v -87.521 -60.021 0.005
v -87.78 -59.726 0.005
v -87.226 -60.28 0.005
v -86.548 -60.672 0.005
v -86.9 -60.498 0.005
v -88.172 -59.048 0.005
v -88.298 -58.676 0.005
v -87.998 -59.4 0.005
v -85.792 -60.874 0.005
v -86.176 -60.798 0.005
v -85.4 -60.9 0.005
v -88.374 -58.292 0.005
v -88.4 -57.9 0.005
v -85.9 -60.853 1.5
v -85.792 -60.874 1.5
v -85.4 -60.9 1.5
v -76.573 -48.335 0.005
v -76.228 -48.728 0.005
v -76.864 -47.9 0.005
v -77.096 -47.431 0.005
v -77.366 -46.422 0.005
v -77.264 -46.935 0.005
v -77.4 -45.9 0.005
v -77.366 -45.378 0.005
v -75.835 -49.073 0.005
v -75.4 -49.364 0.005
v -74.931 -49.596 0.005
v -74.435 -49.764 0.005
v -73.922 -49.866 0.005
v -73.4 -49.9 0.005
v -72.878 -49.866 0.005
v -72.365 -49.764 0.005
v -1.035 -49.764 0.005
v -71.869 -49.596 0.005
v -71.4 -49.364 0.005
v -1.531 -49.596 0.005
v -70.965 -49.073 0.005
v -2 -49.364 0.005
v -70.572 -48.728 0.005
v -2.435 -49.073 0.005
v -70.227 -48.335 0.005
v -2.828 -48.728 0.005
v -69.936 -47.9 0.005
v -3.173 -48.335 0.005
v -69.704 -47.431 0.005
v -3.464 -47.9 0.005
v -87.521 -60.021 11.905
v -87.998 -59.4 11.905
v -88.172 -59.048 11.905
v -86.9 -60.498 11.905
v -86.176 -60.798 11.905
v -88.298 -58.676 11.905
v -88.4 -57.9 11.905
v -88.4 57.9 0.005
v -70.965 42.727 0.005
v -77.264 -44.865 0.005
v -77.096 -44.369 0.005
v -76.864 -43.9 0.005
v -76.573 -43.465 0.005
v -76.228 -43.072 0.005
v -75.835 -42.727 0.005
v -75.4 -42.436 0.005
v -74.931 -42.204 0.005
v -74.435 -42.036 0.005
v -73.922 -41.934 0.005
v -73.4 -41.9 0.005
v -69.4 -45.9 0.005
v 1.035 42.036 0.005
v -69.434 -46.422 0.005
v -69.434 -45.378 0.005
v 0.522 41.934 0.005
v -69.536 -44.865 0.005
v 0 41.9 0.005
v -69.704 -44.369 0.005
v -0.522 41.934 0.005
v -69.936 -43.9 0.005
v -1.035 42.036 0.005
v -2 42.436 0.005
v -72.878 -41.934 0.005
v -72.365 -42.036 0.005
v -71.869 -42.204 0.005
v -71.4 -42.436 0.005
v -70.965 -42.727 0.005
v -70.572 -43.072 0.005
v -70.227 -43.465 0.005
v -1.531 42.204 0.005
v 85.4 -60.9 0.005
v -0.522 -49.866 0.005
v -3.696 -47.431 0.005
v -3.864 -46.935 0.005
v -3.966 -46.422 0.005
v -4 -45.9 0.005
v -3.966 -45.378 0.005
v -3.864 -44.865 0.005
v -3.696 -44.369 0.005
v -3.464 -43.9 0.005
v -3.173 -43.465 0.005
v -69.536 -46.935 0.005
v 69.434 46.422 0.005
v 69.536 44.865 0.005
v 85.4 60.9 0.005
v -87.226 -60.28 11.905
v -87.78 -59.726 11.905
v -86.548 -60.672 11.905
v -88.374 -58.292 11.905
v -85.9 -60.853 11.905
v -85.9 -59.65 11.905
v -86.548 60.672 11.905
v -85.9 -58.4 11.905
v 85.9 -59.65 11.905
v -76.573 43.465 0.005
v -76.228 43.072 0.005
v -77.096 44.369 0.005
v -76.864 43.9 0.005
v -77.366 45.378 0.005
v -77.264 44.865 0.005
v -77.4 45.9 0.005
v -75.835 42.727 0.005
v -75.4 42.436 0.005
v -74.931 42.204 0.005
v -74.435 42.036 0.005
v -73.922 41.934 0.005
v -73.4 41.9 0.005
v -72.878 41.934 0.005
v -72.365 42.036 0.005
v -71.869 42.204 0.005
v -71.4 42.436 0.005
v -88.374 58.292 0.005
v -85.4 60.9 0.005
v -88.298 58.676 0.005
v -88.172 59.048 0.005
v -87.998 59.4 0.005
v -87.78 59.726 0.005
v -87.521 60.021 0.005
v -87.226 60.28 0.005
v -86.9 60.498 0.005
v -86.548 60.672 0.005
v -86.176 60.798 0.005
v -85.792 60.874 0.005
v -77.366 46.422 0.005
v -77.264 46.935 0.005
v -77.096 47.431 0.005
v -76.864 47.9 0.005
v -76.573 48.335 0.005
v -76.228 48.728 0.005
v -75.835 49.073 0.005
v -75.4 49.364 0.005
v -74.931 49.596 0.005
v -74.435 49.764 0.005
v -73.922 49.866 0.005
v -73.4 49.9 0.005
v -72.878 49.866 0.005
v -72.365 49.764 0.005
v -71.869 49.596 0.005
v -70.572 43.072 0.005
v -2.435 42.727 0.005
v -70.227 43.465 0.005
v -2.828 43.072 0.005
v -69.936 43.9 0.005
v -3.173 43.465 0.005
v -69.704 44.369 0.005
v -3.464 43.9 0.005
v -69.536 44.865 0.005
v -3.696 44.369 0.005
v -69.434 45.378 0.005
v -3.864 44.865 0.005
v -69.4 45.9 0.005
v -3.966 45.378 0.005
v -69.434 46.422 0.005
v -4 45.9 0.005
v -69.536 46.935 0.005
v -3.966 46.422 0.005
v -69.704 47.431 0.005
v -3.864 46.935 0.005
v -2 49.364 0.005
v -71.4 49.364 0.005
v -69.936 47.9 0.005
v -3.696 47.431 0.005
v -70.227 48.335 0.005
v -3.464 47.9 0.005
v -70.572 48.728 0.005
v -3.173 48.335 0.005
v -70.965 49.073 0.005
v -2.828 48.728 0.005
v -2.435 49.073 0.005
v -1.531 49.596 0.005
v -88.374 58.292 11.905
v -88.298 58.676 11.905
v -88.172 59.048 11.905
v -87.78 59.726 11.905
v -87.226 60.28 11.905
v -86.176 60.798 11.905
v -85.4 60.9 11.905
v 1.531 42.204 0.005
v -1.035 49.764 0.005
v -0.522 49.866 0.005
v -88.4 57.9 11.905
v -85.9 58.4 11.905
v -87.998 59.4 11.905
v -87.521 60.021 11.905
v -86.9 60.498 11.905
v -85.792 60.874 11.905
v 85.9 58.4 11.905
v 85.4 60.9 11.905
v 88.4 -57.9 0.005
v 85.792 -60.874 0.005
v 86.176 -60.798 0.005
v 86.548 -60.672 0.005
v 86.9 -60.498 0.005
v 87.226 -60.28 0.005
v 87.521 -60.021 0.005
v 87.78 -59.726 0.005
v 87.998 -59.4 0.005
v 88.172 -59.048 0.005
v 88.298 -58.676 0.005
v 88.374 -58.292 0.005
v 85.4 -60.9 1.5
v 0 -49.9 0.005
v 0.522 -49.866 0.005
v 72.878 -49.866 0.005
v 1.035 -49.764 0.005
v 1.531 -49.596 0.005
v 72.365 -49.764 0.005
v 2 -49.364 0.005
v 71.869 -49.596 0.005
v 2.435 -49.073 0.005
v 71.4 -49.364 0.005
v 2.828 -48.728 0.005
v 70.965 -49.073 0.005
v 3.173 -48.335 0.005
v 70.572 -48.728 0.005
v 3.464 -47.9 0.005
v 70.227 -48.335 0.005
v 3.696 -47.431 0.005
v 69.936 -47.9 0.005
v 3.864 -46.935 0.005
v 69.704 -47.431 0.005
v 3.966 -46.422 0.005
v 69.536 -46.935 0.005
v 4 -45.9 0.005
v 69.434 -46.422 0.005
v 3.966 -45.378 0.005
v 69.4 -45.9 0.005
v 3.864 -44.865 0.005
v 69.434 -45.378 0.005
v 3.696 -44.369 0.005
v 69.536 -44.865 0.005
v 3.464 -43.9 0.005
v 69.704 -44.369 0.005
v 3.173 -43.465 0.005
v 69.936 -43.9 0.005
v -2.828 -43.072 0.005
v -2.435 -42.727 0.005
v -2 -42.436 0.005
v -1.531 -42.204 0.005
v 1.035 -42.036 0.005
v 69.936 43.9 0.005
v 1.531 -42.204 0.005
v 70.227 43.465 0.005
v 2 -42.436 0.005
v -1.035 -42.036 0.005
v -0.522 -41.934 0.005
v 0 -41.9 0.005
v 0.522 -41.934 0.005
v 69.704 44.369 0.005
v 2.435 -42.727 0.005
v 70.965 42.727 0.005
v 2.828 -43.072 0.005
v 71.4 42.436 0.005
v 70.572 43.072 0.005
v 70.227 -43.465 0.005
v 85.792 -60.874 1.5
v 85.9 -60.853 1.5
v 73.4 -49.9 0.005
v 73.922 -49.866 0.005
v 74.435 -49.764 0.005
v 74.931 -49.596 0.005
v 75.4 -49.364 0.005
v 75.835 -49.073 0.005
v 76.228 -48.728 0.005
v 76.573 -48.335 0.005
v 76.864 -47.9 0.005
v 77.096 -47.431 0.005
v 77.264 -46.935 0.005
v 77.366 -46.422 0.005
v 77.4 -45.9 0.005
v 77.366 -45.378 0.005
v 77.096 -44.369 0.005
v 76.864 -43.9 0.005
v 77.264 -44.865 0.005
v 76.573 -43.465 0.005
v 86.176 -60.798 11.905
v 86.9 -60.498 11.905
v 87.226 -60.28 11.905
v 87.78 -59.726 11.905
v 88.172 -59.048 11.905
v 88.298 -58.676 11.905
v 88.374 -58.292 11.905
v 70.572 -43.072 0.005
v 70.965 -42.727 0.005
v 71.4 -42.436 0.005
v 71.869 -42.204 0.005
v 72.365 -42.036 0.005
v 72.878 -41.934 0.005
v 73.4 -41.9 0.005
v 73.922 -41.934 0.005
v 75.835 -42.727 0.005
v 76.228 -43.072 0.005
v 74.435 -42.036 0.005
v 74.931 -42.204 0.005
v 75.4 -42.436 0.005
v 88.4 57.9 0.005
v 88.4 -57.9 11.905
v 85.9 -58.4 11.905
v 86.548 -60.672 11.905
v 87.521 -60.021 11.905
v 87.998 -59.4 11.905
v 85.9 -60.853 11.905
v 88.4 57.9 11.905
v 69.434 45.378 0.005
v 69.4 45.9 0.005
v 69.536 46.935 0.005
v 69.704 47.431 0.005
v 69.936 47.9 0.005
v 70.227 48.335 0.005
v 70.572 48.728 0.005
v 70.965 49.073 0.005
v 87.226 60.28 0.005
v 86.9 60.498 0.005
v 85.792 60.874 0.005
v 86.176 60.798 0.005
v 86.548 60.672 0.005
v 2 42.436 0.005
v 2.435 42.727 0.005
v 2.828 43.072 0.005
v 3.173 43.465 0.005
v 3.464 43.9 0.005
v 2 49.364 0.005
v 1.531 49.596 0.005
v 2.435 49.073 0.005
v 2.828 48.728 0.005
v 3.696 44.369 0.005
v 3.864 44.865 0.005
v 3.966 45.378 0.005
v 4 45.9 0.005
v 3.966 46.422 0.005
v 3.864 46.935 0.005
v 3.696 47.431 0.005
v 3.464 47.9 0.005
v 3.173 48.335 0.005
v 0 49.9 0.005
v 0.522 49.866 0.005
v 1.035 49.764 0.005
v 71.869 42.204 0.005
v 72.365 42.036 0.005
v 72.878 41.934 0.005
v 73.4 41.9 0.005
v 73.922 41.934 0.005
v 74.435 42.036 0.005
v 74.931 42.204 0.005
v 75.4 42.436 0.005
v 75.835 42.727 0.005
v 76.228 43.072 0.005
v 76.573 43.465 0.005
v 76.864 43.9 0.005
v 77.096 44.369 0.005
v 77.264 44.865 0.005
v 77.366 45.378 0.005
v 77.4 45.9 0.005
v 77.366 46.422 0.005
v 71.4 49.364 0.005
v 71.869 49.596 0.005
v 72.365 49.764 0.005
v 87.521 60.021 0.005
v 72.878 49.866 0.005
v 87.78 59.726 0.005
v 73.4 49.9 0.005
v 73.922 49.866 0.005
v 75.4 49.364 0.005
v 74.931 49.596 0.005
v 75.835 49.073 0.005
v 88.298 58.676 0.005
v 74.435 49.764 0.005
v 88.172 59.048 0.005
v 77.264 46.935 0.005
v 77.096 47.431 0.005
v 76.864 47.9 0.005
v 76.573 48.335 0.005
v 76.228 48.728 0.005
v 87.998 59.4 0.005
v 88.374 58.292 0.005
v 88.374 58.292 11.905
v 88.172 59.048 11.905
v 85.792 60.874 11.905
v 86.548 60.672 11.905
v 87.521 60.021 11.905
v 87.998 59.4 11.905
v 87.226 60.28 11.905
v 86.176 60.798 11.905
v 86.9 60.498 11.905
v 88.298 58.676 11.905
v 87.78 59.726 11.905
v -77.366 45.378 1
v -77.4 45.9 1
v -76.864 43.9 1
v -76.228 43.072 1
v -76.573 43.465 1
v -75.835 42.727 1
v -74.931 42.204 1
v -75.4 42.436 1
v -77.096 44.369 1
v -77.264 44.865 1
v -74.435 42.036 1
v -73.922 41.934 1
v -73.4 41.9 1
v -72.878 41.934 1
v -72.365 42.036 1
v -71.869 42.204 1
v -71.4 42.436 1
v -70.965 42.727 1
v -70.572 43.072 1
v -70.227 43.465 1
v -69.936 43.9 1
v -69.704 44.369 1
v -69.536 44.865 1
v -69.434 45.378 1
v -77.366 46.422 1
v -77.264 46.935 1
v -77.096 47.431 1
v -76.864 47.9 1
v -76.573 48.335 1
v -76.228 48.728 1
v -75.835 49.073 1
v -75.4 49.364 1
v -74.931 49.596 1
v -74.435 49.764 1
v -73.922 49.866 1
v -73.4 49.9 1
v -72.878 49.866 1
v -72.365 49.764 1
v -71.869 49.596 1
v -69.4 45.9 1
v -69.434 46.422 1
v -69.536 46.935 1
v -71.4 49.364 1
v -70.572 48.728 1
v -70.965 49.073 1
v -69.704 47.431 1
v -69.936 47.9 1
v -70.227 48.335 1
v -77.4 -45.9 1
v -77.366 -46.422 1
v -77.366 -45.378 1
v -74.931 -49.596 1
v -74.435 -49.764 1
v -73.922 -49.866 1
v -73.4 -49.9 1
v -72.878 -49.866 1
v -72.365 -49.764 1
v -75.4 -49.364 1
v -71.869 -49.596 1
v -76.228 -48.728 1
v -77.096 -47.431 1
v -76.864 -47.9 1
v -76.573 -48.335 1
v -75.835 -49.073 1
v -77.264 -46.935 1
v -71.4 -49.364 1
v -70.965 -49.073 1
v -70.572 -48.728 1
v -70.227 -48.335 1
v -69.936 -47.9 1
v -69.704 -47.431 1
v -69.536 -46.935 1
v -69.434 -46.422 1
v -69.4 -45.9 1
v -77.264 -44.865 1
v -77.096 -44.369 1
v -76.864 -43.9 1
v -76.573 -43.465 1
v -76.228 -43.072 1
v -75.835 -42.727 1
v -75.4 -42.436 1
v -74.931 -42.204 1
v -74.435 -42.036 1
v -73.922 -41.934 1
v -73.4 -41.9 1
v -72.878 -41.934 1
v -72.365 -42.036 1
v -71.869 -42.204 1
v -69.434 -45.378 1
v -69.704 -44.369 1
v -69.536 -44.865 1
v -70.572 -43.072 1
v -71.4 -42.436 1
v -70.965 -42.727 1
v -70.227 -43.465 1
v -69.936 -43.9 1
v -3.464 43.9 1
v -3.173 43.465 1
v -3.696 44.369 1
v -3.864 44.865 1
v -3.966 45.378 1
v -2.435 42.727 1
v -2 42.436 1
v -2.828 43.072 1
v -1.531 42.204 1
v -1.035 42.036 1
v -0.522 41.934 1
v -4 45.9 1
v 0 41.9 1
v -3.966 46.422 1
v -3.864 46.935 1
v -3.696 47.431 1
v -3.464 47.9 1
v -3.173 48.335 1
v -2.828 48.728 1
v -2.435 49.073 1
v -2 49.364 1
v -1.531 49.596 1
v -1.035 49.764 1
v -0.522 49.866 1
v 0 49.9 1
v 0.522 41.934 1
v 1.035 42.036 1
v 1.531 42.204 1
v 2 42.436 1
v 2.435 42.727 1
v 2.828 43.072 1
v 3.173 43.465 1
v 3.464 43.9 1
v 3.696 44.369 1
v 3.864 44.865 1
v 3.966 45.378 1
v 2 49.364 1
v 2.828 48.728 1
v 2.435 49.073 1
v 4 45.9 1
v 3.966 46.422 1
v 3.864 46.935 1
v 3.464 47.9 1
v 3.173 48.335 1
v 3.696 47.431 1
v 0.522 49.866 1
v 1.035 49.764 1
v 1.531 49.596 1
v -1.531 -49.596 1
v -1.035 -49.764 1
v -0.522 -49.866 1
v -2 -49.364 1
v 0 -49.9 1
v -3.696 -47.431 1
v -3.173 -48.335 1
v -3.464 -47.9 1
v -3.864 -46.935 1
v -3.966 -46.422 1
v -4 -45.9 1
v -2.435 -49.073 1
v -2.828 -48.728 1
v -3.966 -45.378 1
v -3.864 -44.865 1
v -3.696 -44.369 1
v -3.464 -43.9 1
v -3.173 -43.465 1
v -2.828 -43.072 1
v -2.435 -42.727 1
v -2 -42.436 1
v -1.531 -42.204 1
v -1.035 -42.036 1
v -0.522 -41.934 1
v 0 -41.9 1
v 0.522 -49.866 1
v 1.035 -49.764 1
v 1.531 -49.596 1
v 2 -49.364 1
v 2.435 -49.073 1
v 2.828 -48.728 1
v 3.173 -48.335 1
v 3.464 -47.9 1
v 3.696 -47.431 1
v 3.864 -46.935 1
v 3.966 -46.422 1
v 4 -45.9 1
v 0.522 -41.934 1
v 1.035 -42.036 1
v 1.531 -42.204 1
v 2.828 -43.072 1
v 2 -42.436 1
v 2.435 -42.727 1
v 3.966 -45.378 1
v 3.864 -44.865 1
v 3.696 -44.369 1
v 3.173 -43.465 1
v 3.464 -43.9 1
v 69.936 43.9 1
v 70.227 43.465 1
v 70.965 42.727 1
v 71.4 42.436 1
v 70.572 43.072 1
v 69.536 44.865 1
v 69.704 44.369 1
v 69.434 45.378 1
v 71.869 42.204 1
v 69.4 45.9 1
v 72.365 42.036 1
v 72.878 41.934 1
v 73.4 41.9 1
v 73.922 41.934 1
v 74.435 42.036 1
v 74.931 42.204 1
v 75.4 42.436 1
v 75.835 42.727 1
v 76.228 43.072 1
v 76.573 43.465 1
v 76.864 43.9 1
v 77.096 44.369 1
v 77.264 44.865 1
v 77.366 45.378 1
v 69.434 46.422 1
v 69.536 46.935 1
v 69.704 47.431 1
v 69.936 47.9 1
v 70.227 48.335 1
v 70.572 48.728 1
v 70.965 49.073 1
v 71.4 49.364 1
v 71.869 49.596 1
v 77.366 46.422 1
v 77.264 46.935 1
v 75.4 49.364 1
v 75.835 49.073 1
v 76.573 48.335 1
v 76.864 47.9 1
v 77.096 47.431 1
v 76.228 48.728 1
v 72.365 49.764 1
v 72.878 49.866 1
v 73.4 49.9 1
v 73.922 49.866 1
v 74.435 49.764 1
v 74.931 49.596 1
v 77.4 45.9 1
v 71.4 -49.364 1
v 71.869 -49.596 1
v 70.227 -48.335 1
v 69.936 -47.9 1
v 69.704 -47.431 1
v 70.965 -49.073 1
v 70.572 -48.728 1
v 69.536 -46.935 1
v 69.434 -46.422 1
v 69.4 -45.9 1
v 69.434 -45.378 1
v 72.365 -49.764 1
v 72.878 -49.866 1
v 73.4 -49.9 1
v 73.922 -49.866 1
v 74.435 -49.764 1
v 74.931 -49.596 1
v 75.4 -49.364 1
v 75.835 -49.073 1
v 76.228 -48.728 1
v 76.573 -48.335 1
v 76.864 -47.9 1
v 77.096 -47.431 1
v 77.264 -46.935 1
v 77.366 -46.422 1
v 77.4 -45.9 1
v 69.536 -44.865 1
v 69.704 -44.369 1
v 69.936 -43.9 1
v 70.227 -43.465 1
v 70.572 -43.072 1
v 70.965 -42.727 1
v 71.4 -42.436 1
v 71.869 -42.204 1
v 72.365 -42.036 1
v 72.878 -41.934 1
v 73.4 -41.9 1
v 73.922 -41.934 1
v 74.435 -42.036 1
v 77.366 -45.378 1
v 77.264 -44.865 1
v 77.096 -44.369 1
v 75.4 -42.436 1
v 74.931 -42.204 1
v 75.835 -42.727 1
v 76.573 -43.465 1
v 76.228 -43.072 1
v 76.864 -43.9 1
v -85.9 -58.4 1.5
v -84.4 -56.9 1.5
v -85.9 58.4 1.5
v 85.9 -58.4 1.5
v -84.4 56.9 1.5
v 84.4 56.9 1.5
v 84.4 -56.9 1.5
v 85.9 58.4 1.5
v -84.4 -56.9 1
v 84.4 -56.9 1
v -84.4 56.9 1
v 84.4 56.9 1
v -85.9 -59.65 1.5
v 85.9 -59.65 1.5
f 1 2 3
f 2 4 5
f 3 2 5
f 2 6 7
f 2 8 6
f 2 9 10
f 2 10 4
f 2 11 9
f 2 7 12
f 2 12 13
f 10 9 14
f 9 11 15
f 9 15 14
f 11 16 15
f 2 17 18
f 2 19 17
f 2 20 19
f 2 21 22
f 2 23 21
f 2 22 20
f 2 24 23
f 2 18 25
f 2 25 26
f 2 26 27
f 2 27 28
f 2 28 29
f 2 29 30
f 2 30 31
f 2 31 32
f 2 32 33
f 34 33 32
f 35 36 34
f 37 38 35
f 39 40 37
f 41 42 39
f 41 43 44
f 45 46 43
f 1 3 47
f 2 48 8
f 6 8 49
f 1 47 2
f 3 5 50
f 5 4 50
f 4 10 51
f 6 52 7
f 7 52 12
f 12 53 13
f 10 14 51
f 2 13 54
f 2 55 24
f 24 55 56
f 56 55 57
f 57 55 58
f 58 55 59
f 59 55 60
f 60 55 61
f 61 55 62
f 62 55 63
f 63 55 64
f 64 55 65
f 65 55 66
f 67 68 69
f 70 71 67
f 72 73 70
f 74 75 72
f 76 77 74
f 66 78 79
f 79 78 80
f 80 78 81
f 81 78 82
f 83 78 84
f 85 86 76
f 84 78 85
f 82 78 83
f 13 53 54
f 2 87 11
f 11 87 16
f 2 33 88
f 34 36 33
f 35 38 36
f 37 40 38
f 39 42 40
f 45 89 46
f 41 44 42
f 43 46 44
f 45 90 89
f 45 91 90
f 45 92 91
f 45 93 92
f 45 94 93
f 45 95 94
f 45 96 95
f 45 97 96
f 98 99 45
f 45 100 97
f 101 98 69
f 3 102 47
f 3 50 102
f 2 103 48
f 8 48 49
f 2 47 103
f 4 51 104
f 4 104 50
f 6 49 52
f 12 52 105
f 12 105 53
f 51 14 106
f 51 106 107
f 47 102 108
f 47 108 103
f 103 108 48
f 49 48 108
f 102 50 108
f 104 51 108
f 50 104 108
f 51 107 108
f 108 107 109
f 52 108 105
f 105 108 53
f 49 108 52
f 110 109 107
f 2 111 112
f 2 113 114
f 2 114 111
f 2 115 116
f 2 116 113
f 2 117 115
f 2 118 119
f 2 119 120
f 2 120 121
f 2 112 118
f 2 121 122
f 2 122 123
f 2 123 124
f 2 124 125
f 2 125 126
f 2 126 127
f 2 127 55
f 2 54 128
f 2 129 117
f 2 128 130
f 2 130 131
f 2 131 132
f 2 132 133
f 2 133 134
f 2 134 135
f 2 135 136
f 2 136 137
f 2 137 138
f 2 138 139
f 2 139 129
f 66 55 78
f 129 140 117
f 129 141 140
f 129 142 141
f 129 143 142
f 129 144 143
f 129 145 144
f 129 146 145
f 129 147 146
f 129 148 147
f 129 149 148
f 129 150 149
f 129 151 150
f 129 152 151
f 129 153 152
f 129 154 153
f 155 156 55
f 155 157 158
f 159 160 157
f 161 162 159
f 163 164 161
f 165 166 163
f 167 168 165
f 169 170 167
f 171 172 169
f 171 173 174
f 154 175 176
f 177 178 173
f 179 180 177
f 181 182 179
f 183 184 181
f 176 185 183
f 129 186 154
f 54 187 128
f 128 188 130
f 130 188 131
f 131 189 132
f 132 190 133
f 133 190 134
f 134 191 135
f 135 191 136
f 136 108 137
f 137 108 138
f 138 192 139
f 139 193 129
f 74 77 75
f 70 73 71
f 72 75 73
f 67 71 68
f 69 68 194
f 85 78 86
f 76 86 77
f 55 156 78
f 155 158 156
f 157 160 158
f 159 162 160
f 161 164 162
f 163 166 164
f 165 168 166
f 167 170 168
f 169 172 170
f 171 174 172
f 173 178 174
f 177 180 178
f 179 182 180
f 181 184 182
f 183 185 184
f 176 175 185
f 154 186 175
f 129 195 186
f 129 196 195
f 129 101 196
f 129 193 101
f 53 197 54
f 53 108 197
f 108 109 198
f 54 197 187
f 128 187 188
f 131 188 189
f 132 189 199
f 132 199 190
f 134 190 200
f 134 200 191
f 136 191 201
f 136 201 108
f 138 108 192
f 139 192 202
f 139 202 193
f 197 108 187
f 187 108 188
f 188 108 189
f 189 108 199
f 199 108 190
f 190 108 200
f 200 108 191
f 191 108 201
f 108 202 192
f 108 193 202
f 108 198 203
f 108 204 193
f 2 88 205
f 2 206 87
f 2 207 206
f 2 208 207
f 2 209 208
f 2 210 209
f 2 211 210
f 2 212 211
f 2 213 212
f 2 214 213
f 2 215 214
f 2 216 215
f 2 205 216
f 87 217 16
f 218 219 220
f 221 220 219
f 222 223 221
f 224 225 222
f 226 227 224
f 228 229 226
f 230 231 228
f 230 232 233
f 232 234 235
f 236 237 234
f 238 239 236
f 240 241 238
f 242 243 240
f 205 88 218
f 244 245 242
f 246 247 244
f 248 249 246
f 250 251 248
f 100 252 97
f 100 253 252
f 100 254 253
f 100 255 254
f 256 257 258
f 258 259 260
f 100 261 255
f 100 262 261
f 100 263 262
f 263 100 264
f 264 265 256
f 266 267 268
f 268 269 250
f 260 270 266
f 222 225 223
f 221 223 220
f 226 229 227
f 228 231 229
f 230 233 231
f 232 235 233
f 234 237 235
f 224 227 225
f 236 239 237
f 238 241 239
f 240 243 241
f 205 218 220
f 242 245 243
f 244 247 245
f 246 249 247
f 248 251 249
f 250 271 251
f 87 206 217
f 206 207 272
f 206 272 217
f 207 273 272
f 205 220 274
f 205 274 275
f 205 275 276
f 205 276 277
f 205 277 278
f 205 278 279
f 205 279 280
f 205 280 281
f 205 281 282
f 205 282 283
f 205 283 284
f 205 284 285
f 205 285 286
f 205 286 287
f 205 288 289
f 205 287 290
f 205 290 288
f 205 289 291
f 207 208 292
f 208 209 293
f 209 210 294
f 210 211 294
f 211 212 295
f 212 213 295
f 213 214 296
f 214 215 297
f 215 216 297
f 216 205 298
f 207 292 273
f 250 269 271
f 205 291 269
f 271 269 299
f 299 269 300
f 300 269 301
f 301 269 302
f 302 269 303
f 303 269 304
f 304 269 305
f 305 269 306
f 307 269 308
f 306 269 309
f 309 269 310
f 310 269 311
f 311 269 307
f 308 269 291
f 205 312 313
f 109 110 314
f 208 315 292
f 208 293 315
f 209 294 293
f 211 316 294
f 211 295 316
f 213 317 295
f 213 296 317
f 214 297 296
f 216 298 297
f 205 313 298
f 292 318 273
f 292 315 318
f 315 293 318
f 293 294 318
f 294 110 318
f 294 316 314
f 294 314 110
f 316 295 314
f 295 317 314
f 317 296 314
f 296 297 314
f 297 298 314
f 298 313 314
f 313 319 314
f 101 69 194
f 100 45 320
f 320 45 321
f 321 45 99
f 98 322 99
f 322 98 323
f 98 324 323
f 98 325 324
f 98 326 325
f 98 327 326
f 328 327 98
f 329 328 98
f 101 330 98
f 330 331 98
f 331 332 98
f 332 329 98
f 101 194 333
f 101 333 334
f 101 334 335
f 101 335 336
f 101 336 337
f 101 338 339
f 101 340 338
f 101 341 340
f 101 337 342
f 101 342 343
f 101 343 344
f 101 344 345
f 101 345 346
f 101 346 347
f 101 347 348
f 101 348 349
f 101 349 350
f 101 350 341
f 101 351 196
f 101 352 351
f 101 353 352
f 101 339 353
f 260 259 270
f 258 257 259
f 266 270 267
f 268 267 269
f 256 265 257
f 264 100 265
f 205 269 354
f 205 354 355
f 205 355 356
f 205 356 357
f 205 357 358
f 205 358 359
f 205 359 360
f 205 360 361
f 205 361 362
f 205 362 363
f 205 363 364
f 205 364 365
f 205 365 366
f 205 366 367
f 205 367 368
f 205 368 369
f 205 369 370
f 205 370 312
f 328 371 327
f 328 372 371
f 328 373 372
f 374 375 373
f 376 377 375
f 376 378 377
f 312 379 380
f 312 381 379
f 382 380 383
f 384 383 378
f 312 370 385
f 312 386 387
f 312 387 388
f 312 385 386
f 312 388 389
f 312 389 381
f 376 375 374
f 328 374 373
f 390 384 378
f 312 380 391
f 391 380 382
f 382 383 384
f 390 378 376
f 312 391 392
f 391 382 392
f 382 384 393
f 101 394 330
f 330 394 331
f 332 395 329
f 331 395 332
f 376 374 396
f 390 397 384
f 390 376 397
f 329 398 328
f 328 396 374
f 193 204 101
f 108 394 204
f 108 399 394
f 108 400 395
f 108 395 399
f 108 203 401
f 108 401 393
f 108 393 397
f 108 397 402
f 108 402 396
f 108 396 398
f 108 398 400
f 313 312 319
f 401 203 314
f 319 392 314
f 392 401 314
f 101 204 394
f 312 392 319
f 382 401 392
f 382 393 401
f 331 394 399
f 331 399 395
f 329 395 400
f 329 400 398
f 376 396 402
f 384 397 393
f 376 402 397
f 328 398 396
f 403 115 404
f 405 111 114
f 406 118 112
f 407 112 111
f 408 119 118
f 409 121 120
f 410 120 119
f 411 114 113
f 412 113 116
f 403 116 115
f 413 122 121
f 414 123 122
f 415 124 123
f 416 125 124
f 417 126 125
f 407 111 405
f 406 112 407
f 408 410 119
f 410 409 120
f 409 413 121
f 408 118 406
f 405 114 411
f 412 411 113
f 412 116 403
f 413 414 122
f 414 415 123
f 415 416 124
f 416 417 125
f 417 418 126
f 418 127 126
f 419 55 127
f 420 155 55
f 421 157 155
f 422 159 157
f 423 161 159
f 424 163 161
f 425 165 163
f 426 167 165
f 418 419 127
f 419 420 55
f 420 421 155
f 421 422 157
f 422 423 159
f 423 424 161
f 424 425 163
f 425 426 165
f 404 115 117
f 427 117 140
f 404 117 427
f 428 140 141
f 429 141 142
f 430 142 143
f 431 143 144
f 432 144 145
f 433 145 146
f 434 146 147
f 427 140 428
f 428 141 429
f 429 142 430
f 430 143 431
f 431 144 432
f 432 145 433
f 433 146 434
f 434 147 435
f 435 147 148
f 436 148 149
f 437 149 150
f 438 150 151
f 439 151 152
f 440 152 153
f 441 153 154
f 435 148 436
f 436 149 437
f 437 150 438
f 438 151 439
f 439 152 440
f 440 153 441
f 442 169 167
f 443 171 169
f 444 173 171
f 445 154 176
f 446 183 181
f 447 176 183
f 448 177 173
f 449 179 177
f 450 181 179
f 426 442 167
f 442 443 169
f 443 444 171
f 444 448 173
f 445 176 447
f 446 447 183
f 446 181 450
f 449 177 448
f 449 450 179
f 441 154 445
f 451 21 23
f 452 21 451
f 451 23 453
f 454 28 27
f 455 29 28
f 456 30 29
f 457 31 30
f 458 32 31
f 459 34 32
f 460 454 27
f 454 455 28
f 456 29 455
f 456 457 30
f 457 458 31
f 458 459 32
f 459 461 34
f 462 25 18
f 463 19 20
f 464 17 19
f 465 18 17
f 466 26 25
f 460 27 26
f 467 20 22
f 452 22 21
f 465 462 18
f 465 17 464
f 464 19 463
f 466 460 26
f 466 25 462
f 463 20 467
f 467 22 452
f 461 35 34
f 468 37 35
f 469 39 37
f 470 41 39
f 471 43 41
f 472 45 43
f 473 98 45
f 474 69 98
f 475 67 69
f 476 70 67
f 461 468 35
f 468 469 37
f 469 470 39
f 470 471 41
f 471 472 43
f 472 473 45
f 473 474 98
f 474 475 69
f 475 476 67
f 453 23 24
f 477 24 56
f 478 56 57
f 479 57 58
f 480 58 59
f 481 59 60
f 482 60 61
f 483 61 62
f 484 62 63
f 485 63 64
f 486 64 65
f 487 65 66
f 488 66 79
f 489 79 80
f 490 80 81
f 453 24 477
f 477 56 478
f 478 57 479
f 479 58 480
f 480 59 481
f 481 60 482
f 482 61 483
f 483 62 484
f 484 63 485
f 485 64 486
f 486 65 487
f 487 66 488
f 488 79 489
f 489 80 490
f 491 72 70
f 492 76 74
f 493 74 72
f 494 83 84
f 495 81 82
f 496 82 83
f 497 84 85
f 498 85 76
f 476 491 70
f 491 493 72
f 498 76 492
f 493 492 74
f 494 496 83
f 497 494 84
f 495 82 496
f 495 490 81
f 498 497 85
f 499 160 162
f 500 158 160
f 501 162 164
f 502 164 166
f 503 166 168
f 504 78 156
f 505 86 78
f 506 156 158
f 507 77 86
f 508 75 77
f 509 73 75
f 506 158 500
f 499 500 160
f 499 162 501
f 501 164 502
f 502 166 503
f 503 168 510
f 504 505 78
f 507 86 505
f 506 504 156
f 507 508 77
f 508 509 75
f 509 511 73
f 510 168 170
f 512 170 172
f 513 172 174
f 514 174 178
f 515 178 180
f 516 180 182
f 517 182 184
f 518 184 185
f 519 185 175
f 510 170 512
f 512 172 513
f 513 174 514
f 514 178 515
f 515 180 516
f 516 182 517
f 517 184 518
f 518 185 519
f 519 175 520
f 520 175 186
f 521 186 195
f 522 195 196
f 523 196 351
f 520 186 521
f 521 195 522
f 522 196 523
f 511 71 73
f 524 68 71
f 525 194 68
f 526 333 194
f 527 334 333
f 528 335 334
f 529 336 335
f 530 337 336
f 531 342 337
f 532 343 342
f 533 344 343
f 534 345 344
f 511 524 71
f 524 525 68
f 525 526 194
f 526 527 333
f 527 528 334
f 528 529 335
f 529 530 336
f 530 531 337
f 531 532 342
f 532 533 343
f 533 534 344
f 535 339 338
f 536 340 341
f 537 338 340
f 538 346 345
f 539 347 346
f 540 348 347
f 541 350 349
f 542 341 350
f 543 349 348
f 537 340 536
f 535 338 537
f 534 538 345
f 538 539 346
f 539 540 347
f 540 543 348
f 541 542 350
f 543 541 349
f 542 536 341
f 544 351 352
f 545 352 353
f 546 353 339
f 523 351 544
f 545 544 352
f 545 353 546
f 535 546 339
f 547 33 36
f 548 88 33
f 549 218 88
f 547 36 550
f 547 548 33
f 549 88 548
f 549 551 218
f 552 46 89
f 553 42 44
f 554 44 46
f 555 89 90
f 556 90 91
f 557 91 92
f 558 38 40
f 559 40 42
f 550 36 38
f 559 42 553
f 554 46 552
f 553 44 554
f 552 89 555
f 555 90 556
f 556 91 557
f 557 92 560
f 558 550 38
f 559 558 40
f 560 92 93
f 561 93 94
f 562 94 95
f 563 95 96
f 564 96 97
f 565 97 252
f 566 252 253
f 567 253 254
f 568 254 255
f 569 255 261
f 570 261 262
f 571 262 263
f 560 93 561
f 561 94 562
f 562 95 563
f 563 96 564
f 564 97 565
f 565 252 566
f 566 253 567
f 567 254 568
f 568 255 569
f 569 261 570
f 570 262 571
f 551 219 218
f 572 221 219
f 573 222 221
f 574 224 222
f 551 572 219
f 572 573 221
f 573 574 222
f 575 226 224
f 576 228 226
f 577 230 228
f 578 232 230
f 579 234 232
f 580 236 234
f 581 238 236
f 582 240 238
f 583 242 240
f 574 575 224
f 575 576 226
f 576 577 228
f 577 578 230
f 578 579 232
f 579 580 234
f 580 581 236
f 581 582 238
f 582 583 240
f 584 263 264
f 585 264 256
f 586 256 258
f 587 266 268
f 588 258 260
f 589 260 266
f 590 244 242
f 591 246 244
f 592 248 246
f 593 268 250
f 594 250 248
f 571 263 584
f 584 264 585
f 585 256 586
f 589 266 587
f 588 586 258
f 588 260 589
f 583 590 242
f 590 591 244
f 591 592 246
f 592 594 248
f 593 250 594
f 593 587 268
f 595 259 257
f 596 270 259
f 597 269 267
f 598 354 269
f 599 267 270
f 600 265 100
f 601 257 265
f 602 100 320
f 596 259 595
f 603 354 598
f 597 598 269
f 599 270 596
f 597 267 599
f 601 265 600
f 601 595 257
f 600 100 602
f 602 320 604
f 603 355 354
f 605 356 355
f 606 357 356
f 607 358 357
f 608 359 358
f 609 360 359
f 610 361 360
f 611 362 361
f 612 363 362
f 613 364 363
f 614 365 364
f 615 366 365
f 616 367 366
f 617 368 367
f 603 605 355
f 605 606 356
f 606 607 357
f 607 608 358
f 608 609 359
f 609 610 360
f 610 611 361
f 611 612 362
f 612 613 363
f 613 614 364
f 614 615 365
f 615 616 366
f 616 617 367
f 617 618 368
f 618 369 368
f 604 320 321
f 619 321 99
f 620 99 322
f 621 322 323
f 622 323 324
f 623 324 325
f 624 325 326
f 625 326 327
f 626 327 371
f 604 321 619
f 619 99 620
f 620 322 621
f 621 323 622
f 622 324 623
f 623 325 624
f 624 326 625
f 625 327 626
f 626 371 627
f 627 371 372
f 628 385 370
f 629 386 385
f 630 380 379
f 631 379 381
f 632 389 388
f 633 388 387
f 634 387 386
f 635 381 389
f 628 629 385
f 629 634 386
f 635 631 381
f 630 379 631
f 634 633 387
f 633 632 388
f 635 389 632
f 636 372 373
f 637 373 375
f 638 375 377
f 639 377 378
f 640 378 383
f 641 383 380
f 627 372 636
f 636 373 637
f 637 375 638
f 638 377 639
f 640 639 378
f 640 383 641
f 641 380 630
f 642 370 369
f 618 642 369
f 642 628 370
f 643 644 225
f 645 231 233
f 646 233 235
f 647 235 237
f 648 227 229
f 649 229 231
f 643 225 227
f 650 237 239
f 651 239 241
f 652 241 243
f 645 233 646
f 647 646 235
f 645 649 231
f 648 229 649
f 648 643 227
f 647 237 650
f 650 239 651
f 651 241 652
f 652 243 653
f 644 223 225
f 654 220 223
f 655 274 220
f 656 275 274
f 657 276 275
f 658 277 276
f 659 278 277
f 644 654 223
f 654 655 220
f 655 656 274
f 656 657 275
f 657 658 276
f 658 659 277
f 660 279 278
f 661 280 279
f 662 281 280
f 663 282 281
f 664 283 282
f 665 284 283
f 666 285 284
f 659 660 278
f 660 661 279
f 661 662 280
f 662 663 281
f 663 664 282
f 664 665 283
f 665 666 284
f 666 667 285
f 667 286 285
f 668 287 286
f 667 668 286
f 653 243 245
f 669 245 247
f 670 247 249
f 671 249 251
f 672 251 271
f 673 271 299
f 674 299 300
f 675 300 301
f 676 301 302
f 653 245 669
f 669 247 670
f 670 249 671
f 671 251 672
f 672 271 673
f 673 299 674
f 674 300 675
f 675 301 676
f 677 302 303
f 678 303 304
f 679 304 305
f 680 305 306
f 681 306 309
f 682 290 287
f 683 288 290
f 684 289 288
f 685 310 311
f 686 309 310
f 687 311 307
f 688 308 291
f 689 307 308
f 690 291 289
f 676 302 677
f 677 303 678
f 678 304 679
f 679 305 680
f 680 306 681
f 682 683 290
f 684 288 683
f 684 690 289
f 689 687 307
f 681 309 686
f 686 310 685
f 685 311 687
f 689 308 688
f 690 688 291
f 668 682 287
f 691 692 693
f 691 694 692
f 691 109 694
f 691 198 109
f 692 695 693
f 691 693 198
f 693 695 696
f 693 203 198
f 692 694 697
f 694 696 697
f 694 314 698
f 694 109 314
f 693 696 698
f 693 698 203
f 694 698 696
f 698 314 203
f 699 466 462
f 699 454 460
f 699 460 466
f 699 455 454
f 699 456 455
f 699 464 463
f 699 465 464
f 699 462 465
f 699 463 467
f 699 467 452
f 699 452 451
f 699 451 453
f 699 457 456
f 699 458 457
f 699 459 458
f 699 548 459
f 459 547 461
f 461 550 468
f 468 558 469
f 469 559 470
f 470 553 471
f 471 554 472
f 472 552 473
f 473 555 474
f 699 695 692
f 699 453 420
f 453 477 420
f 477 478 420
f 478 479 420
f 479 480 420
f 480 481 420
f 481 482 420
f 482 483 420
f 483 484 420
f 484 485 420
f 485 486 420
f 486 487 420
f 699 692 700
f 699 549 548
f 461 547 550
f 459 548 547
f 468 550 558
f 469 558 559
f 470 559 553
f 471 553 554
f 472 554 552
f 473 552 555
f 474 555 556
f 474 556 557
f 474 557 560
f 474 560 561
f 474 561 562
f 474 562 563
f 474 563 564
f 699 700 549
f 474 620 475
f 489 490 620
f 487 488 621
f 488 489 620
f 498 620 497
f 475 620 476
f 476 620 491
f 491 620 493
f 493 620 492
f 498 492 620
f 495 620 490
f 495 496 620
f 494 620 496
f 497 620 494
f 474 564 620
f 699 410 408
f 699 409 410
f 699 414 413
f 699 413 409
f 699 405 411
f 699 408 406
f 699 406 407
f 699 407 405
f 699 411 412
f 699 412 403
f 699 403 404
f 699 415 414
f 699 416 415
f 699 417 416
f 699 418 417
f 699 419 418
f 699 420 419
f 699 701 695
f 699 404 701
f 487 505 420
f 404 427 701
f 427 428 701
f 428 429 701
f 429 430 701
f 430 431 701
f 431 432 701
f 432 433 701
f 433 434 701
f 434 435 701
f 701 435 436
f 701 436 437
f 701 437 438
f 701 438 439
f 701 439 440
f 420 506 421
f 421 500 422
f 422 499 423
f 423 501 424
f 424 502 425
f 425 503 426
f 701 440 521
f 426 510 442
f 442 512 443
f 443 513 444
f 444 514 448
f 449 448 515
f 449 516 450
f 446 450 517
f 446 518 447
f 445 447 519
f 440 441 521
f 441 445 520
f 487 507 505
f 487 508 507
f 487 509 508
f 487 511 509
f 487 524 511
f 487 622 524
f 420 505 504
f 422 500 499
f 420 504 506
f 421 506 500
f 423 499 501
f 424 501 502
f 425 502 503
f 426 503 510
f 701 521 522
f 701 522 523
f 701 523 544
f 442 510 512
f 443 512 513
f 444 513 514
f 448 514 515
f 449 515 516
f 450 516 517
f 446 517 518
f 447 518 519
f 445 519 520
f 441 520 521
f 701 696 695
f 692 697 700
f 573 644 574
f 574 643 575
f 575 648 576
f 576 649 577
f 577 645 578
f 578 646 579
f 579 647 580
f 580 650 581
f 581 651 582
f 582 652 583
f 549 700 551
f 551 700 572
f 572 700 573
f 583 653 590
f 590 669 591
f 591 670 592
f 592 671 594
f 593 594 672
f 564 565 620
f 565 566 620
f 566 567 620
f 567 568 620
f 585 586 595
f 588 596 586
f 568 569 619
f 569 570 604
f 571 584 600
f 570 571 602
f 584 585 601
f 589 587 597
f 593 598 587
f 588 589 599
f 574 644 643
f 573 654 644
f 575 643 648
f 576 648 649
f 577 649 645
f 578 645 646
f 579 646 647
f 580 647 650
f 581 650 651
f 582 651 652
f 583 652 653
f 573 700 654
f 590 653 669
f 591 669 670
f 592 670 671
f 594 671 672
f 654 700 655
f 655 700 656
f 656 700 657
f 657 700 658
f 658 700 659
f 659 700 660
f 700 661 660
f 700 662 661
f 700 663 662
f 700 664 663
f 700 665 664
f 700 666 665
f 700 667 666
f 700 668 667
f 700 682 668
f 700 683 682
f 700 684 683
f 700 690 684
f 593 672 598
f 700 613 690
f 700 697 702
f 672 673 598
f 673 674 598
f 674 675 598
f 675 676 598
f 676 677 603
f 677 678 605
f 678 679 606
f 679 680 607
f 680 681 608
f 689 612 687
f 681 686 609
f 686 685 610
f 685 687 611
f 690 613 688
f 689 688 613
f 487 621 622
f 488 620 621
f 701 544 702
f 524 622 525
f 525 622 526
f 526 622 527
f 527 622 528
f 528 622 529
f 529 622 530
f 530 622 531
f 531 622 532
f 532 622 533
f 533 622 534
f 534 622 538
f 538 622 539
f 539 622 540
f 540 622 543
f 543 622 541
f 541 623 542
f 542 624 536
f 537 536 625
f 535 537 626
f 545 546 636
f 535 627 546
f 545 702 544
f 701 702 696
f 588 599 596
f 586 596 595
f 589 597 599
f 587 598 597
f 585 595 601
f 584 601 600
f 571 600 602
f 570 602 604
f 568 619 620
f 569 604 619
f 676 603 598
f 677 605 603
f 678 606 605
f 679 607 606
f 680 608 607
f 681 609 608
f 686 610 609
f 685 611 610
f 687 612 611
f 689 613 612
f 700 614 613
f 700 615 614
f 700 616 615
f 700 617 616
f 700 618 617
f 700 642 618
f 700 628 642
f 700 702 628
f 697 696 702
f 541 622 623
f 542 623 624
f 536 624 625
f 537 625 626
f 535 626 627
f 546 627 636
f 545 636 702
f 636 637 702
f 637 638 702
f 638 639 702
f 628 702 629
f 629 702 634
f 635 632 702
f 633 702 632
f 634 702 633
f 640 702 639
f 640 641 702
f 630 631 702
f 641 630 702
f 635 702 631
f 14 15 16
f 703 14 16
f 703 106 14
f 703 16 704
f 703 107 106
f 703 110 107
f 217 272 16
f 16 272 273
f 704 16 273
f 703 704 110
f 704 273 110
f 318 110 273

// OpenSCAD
// =============================================================================
// Breadcrumbs Mount V1 — Magnetic Tray for TRMNL OG on MacBook Pro 14"
// Parametric OpenSCAD design
// 
// Thesis project: reducing activation energy for conversations in public spaces
// by mounting a TRMNL e-ink display on the back of a laptop lid.
//
// ORIENTATION: The TRMNL sits in a tray with the e-ink screen facing OUTWARD
// (toward other people). The solid back plate sits against the MacBook lid,
// held on by magnets. The front is open so the screen is fully visible.
//
// Instructions:
//   1. Open in OpenSCAD, adjust parameters in Customizer (right panel)
//   2. Preview (F5), Render (F6), Export STL (F7)
//   3. Print: 0.16mm layers, 15-20% infill, 3 walls, matte black PLA/PETG
// =============================================================================

// --- PARAMETERS (adjust these) -----------------------------------------------

// TRMNL OG device dimensions
// Sources: Gadgeteer review (171×116×10mm), Waveshare 7.5" EPD spec, official STLs
trmnl_width  = 171.0;    // mm - enclosure width
trmnl_height = 116.0;    // mm - enclosure height  
trmnl_depth  = 10.0;     // mm - enclosure thickness (Gadgeteer: 0.4" / 10mm)

// Frame construction
wall       = 2.5;        // mm - side wall thickness
lip        = 1.5;        // mm - front lip that holds TRMNL in (overlaps screen bezel)
back_thick = 1.5;        // mm - back plate thickness (against laptop lid)
tolerance  = 0.4;        // mm - clearance per side for easy fit
corner_r   = 3.0;        // mm - outer corner radius

// Magnets (neodymium disc, press-fit into back plate face)
mag_dia    = 8.0;        // mm - magnet diameter
mag_depth  = 3.2;        // mm - recess depth (slightly > magnet for flush)
mag_margin = 15.0;       // mm - magnet center distance from outer edge
mag_cols   = 3;          // magnets per row (top & bottom rows = 6 total)

// Slide-in opening (one short edge open for inserting TRMNL)
slide_in = true;

// --- DERIVED DIMENSIONS (don't edit) -----------------------------------------

// Inner pocket (TRMNL + clearance)
pocket_w = trmnl_width + 2 * tolerance;
pocket_h = trmnl_height + 2 * tolerance;
pocket_d = trmnl_depth + tolerance;  // depth clearance too

// Outer frame
frame_w = pocket_w + 2 * wall;
frame_h = pocket_h + 2 * wall;
frame_d = back_thick + pocket_d;     // back plate + device pocket

// Front lip inset (how far the lip covers the screen bezel edge)
lip_inset = lip;

// --- MODULES -----------------------------------------------------------------

module rounded_box(w, h, d, r) {
    // Rounded rectangle, centered XY, bottom at Z=0
    translate([0, 0, d/2])
        minkowski() {
            cube([w - 2*r, h - 2*r, d - 0.01], center=true);
            cylinder(r=r, h=0.01, $fn=48);
        }
}

module magnet_hole() {
    cylinder(d=mag_dia, h=mag_depth + 0.1, $fn=48);
}

// --- MAIN MODEL --------------------------------------------------------------

module breadcrumbs_mount_v1() {
    difference() {
        // === Outer body ===
        rounded_box(frame_w, frame_h, frame_d, corner_r);
        
        // === Device pocket ===
        // Cut from top (screen side), leaving back plate solid
        // The TRMNL drops in from the front, screen facing out
        translate([0, 0, back_thick + pocket_d/2 + 0.5])
            cube([pocket_w, pocket_h, pocket_d + 1], center=true);
        
        // === Front opening (screen visible) ===
        // Cut away the top face, but leave a lip around the edge
        // The lip holds the TRMNL in place (grips the bezel edges)
        translate([0, 0, back_thick + pocket_d/2 + 0.5])
            cube([pocket_w - 2*lip_inset, pocket_h - 2*lip_inset, pocket_d + 2], center=true);
        
        // === Magnet recesses (in back face, the laptop-lid side) ===
        for (col = [0 : mag_cols - 1]) {
            x = -frame_w/2 + mag_margin + col * (frame_w - 2*mag_margin) / max(mag_cols - 1, 1);
            
            // Top row
            translate([x, frame_h/2 - mag_margin, -0.05])
                magnet_hole();
            
            // Bottom row
            translate([x, -(frame_h/2 - mag_margin), -0.05])
                magnet_hole();
        }
        
        // === Slide-in slot (remove bottom short wall for insertion) ===
        if (slide_in) {
            translate([0, -(frame_h/2 + 0.5), back_thick + pocket_d/2 + 0.5])
                cube([pocket_w, wall + 1, pocket_d + 1], center=true);
        }
    }
}

// --- INFO --------------------------------------------------------------------

echo(str("=== Breadcrumbs Mount V1 ==="));
echo(str("Frame outer: ", frame_w, " × ", frame_h, " × ", frame_d, " mm"));
echo(str("Pocket inner: ", pocket_w, " × ", pocket_h, " × ", pocket_d, " mm"));
echo(str("Back plate: ", back_thick, " mm"));
echo(str("Front lip: ", lip_inset, " mm overlap"));
echo(str("Magnets: ", mag_cols * 2, "× ⌀", mag_dia, " × ", mag_depth, "mm"));
echo(str("Slide-in: ", slide_in ? "bottom edge open" : "fully enclosed"));

// --- RENDER ------------------------------------------------------------------

breadcrumbs_mount_v1();
